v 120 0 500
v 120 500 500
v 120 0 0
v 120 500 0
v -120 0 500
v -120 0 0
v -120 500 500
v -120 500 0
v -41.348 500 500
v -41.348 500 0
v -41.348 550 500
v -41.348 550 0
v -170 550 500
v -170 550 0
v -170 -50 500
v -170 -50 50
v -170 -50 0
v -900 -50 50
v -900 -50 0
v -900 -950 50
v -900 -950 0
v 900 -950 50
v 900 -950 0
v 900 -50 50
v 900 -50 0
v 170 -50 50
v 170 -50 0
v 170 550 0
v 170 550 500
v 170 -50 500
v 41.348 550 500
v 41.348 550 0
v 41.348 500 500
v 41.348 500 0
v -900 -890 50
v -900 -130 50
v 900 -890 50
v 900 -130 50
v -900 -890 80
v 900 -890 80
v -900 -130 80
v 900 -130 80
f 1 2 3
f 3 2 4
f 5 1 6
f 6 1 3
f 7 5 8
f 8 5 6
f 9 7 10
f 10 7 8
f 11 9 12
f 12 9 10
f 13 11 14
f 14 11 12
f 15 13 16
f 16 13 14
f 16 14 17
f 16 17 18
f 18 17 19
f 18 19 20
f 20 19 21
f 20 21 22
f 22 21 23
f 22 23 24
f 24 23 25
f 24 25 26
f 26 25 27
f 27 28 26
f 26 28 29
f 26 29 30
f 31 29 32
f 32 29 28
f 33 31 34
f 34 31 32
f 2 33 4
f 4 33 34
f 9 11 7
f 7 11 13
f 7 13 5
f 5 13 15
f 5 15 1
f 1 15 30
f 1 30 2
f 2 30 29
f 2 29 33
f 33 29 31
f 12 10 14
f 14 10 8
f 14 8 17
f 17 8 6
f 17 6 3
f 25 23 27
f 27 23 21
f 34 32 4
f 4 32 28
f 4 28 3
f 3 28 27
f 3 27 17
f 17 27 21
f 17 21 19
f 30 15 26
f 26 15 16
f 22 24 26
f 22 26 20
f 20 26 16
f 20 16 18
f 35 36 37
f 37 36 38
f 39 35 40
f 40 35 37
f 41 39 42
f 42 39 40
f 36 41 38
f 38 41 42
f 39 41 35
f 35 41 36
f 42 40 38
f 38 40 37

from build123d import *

# Parameters (mm, degrees)
AUFSATZ_LINEAR_AUSTRAGEN1_DEPTH = 500
SKIZZE2_W                       = 450
SKIZZE2_H                       = 900
SCHNITT_LINEAR_AUSTRAGEN1_DEPTH = 2096.829191513
SKIZZE3_W                       = 30
SKIZZE3_H                       = 760
AUFSATZ_LINEAR_AUSTRAGEN2_DEPTH = 1800


with BuildPart() as part:
    # Skizze1 → Aufsatz-Linear austragen1 (new body)
    with BuildSketch(Plane.XY):
        Polygon((-120, 0), (120, 0), (120, 500), (41.348314607, 500), (41.348314607, 550), (170, 550), (170, -50), (900, -50), (900, -950), (513.483146067, -950), (-513.483146067, -950), (-900, -950), (-900, -50), (-170, -50), (-170, 550), (-41.348314607, 550), (-41.348314607, 500), (-120, 500), align=None)
    extrude(amount=AUFSATZ_LINEAR_AUSTRAGEN1_DEPTH)

    # Skizze2 → Schnitt-Linear austragen1 (cut, through all)
    with BuildSketch(Plane(origin=(900, 0, 0), x_dir=(0, 0, -1), z_dir=(1, 0, 0))):
        with Locations((-275, -500)):
            Rectangle(SKIZZE2_W, SKIZZE2_H)
    extrude(amount=-SCHNITT_LINEAR_AUSTRAGEN1_DEPTH, mode=Mode.SUBTRACT)


with BuildPart() as body_2:
    # Skizze3 → Aufsatz-Linear austragen2 (new body)
    with BuildSketch(Plane(origin=(900, 0, 0), x_dir=(0, 0, -1), z_dir=(1, 0, 0))):
        with Locations((-65, -510)):
            Rectangle(SKIZZE3_W, SKIZZE3_H)
    extrude(amount=-AUFSATZ_LINEAR_AUSTRAGEN2_DEPTH)


solid = Compound([part.part, body_2.part])
